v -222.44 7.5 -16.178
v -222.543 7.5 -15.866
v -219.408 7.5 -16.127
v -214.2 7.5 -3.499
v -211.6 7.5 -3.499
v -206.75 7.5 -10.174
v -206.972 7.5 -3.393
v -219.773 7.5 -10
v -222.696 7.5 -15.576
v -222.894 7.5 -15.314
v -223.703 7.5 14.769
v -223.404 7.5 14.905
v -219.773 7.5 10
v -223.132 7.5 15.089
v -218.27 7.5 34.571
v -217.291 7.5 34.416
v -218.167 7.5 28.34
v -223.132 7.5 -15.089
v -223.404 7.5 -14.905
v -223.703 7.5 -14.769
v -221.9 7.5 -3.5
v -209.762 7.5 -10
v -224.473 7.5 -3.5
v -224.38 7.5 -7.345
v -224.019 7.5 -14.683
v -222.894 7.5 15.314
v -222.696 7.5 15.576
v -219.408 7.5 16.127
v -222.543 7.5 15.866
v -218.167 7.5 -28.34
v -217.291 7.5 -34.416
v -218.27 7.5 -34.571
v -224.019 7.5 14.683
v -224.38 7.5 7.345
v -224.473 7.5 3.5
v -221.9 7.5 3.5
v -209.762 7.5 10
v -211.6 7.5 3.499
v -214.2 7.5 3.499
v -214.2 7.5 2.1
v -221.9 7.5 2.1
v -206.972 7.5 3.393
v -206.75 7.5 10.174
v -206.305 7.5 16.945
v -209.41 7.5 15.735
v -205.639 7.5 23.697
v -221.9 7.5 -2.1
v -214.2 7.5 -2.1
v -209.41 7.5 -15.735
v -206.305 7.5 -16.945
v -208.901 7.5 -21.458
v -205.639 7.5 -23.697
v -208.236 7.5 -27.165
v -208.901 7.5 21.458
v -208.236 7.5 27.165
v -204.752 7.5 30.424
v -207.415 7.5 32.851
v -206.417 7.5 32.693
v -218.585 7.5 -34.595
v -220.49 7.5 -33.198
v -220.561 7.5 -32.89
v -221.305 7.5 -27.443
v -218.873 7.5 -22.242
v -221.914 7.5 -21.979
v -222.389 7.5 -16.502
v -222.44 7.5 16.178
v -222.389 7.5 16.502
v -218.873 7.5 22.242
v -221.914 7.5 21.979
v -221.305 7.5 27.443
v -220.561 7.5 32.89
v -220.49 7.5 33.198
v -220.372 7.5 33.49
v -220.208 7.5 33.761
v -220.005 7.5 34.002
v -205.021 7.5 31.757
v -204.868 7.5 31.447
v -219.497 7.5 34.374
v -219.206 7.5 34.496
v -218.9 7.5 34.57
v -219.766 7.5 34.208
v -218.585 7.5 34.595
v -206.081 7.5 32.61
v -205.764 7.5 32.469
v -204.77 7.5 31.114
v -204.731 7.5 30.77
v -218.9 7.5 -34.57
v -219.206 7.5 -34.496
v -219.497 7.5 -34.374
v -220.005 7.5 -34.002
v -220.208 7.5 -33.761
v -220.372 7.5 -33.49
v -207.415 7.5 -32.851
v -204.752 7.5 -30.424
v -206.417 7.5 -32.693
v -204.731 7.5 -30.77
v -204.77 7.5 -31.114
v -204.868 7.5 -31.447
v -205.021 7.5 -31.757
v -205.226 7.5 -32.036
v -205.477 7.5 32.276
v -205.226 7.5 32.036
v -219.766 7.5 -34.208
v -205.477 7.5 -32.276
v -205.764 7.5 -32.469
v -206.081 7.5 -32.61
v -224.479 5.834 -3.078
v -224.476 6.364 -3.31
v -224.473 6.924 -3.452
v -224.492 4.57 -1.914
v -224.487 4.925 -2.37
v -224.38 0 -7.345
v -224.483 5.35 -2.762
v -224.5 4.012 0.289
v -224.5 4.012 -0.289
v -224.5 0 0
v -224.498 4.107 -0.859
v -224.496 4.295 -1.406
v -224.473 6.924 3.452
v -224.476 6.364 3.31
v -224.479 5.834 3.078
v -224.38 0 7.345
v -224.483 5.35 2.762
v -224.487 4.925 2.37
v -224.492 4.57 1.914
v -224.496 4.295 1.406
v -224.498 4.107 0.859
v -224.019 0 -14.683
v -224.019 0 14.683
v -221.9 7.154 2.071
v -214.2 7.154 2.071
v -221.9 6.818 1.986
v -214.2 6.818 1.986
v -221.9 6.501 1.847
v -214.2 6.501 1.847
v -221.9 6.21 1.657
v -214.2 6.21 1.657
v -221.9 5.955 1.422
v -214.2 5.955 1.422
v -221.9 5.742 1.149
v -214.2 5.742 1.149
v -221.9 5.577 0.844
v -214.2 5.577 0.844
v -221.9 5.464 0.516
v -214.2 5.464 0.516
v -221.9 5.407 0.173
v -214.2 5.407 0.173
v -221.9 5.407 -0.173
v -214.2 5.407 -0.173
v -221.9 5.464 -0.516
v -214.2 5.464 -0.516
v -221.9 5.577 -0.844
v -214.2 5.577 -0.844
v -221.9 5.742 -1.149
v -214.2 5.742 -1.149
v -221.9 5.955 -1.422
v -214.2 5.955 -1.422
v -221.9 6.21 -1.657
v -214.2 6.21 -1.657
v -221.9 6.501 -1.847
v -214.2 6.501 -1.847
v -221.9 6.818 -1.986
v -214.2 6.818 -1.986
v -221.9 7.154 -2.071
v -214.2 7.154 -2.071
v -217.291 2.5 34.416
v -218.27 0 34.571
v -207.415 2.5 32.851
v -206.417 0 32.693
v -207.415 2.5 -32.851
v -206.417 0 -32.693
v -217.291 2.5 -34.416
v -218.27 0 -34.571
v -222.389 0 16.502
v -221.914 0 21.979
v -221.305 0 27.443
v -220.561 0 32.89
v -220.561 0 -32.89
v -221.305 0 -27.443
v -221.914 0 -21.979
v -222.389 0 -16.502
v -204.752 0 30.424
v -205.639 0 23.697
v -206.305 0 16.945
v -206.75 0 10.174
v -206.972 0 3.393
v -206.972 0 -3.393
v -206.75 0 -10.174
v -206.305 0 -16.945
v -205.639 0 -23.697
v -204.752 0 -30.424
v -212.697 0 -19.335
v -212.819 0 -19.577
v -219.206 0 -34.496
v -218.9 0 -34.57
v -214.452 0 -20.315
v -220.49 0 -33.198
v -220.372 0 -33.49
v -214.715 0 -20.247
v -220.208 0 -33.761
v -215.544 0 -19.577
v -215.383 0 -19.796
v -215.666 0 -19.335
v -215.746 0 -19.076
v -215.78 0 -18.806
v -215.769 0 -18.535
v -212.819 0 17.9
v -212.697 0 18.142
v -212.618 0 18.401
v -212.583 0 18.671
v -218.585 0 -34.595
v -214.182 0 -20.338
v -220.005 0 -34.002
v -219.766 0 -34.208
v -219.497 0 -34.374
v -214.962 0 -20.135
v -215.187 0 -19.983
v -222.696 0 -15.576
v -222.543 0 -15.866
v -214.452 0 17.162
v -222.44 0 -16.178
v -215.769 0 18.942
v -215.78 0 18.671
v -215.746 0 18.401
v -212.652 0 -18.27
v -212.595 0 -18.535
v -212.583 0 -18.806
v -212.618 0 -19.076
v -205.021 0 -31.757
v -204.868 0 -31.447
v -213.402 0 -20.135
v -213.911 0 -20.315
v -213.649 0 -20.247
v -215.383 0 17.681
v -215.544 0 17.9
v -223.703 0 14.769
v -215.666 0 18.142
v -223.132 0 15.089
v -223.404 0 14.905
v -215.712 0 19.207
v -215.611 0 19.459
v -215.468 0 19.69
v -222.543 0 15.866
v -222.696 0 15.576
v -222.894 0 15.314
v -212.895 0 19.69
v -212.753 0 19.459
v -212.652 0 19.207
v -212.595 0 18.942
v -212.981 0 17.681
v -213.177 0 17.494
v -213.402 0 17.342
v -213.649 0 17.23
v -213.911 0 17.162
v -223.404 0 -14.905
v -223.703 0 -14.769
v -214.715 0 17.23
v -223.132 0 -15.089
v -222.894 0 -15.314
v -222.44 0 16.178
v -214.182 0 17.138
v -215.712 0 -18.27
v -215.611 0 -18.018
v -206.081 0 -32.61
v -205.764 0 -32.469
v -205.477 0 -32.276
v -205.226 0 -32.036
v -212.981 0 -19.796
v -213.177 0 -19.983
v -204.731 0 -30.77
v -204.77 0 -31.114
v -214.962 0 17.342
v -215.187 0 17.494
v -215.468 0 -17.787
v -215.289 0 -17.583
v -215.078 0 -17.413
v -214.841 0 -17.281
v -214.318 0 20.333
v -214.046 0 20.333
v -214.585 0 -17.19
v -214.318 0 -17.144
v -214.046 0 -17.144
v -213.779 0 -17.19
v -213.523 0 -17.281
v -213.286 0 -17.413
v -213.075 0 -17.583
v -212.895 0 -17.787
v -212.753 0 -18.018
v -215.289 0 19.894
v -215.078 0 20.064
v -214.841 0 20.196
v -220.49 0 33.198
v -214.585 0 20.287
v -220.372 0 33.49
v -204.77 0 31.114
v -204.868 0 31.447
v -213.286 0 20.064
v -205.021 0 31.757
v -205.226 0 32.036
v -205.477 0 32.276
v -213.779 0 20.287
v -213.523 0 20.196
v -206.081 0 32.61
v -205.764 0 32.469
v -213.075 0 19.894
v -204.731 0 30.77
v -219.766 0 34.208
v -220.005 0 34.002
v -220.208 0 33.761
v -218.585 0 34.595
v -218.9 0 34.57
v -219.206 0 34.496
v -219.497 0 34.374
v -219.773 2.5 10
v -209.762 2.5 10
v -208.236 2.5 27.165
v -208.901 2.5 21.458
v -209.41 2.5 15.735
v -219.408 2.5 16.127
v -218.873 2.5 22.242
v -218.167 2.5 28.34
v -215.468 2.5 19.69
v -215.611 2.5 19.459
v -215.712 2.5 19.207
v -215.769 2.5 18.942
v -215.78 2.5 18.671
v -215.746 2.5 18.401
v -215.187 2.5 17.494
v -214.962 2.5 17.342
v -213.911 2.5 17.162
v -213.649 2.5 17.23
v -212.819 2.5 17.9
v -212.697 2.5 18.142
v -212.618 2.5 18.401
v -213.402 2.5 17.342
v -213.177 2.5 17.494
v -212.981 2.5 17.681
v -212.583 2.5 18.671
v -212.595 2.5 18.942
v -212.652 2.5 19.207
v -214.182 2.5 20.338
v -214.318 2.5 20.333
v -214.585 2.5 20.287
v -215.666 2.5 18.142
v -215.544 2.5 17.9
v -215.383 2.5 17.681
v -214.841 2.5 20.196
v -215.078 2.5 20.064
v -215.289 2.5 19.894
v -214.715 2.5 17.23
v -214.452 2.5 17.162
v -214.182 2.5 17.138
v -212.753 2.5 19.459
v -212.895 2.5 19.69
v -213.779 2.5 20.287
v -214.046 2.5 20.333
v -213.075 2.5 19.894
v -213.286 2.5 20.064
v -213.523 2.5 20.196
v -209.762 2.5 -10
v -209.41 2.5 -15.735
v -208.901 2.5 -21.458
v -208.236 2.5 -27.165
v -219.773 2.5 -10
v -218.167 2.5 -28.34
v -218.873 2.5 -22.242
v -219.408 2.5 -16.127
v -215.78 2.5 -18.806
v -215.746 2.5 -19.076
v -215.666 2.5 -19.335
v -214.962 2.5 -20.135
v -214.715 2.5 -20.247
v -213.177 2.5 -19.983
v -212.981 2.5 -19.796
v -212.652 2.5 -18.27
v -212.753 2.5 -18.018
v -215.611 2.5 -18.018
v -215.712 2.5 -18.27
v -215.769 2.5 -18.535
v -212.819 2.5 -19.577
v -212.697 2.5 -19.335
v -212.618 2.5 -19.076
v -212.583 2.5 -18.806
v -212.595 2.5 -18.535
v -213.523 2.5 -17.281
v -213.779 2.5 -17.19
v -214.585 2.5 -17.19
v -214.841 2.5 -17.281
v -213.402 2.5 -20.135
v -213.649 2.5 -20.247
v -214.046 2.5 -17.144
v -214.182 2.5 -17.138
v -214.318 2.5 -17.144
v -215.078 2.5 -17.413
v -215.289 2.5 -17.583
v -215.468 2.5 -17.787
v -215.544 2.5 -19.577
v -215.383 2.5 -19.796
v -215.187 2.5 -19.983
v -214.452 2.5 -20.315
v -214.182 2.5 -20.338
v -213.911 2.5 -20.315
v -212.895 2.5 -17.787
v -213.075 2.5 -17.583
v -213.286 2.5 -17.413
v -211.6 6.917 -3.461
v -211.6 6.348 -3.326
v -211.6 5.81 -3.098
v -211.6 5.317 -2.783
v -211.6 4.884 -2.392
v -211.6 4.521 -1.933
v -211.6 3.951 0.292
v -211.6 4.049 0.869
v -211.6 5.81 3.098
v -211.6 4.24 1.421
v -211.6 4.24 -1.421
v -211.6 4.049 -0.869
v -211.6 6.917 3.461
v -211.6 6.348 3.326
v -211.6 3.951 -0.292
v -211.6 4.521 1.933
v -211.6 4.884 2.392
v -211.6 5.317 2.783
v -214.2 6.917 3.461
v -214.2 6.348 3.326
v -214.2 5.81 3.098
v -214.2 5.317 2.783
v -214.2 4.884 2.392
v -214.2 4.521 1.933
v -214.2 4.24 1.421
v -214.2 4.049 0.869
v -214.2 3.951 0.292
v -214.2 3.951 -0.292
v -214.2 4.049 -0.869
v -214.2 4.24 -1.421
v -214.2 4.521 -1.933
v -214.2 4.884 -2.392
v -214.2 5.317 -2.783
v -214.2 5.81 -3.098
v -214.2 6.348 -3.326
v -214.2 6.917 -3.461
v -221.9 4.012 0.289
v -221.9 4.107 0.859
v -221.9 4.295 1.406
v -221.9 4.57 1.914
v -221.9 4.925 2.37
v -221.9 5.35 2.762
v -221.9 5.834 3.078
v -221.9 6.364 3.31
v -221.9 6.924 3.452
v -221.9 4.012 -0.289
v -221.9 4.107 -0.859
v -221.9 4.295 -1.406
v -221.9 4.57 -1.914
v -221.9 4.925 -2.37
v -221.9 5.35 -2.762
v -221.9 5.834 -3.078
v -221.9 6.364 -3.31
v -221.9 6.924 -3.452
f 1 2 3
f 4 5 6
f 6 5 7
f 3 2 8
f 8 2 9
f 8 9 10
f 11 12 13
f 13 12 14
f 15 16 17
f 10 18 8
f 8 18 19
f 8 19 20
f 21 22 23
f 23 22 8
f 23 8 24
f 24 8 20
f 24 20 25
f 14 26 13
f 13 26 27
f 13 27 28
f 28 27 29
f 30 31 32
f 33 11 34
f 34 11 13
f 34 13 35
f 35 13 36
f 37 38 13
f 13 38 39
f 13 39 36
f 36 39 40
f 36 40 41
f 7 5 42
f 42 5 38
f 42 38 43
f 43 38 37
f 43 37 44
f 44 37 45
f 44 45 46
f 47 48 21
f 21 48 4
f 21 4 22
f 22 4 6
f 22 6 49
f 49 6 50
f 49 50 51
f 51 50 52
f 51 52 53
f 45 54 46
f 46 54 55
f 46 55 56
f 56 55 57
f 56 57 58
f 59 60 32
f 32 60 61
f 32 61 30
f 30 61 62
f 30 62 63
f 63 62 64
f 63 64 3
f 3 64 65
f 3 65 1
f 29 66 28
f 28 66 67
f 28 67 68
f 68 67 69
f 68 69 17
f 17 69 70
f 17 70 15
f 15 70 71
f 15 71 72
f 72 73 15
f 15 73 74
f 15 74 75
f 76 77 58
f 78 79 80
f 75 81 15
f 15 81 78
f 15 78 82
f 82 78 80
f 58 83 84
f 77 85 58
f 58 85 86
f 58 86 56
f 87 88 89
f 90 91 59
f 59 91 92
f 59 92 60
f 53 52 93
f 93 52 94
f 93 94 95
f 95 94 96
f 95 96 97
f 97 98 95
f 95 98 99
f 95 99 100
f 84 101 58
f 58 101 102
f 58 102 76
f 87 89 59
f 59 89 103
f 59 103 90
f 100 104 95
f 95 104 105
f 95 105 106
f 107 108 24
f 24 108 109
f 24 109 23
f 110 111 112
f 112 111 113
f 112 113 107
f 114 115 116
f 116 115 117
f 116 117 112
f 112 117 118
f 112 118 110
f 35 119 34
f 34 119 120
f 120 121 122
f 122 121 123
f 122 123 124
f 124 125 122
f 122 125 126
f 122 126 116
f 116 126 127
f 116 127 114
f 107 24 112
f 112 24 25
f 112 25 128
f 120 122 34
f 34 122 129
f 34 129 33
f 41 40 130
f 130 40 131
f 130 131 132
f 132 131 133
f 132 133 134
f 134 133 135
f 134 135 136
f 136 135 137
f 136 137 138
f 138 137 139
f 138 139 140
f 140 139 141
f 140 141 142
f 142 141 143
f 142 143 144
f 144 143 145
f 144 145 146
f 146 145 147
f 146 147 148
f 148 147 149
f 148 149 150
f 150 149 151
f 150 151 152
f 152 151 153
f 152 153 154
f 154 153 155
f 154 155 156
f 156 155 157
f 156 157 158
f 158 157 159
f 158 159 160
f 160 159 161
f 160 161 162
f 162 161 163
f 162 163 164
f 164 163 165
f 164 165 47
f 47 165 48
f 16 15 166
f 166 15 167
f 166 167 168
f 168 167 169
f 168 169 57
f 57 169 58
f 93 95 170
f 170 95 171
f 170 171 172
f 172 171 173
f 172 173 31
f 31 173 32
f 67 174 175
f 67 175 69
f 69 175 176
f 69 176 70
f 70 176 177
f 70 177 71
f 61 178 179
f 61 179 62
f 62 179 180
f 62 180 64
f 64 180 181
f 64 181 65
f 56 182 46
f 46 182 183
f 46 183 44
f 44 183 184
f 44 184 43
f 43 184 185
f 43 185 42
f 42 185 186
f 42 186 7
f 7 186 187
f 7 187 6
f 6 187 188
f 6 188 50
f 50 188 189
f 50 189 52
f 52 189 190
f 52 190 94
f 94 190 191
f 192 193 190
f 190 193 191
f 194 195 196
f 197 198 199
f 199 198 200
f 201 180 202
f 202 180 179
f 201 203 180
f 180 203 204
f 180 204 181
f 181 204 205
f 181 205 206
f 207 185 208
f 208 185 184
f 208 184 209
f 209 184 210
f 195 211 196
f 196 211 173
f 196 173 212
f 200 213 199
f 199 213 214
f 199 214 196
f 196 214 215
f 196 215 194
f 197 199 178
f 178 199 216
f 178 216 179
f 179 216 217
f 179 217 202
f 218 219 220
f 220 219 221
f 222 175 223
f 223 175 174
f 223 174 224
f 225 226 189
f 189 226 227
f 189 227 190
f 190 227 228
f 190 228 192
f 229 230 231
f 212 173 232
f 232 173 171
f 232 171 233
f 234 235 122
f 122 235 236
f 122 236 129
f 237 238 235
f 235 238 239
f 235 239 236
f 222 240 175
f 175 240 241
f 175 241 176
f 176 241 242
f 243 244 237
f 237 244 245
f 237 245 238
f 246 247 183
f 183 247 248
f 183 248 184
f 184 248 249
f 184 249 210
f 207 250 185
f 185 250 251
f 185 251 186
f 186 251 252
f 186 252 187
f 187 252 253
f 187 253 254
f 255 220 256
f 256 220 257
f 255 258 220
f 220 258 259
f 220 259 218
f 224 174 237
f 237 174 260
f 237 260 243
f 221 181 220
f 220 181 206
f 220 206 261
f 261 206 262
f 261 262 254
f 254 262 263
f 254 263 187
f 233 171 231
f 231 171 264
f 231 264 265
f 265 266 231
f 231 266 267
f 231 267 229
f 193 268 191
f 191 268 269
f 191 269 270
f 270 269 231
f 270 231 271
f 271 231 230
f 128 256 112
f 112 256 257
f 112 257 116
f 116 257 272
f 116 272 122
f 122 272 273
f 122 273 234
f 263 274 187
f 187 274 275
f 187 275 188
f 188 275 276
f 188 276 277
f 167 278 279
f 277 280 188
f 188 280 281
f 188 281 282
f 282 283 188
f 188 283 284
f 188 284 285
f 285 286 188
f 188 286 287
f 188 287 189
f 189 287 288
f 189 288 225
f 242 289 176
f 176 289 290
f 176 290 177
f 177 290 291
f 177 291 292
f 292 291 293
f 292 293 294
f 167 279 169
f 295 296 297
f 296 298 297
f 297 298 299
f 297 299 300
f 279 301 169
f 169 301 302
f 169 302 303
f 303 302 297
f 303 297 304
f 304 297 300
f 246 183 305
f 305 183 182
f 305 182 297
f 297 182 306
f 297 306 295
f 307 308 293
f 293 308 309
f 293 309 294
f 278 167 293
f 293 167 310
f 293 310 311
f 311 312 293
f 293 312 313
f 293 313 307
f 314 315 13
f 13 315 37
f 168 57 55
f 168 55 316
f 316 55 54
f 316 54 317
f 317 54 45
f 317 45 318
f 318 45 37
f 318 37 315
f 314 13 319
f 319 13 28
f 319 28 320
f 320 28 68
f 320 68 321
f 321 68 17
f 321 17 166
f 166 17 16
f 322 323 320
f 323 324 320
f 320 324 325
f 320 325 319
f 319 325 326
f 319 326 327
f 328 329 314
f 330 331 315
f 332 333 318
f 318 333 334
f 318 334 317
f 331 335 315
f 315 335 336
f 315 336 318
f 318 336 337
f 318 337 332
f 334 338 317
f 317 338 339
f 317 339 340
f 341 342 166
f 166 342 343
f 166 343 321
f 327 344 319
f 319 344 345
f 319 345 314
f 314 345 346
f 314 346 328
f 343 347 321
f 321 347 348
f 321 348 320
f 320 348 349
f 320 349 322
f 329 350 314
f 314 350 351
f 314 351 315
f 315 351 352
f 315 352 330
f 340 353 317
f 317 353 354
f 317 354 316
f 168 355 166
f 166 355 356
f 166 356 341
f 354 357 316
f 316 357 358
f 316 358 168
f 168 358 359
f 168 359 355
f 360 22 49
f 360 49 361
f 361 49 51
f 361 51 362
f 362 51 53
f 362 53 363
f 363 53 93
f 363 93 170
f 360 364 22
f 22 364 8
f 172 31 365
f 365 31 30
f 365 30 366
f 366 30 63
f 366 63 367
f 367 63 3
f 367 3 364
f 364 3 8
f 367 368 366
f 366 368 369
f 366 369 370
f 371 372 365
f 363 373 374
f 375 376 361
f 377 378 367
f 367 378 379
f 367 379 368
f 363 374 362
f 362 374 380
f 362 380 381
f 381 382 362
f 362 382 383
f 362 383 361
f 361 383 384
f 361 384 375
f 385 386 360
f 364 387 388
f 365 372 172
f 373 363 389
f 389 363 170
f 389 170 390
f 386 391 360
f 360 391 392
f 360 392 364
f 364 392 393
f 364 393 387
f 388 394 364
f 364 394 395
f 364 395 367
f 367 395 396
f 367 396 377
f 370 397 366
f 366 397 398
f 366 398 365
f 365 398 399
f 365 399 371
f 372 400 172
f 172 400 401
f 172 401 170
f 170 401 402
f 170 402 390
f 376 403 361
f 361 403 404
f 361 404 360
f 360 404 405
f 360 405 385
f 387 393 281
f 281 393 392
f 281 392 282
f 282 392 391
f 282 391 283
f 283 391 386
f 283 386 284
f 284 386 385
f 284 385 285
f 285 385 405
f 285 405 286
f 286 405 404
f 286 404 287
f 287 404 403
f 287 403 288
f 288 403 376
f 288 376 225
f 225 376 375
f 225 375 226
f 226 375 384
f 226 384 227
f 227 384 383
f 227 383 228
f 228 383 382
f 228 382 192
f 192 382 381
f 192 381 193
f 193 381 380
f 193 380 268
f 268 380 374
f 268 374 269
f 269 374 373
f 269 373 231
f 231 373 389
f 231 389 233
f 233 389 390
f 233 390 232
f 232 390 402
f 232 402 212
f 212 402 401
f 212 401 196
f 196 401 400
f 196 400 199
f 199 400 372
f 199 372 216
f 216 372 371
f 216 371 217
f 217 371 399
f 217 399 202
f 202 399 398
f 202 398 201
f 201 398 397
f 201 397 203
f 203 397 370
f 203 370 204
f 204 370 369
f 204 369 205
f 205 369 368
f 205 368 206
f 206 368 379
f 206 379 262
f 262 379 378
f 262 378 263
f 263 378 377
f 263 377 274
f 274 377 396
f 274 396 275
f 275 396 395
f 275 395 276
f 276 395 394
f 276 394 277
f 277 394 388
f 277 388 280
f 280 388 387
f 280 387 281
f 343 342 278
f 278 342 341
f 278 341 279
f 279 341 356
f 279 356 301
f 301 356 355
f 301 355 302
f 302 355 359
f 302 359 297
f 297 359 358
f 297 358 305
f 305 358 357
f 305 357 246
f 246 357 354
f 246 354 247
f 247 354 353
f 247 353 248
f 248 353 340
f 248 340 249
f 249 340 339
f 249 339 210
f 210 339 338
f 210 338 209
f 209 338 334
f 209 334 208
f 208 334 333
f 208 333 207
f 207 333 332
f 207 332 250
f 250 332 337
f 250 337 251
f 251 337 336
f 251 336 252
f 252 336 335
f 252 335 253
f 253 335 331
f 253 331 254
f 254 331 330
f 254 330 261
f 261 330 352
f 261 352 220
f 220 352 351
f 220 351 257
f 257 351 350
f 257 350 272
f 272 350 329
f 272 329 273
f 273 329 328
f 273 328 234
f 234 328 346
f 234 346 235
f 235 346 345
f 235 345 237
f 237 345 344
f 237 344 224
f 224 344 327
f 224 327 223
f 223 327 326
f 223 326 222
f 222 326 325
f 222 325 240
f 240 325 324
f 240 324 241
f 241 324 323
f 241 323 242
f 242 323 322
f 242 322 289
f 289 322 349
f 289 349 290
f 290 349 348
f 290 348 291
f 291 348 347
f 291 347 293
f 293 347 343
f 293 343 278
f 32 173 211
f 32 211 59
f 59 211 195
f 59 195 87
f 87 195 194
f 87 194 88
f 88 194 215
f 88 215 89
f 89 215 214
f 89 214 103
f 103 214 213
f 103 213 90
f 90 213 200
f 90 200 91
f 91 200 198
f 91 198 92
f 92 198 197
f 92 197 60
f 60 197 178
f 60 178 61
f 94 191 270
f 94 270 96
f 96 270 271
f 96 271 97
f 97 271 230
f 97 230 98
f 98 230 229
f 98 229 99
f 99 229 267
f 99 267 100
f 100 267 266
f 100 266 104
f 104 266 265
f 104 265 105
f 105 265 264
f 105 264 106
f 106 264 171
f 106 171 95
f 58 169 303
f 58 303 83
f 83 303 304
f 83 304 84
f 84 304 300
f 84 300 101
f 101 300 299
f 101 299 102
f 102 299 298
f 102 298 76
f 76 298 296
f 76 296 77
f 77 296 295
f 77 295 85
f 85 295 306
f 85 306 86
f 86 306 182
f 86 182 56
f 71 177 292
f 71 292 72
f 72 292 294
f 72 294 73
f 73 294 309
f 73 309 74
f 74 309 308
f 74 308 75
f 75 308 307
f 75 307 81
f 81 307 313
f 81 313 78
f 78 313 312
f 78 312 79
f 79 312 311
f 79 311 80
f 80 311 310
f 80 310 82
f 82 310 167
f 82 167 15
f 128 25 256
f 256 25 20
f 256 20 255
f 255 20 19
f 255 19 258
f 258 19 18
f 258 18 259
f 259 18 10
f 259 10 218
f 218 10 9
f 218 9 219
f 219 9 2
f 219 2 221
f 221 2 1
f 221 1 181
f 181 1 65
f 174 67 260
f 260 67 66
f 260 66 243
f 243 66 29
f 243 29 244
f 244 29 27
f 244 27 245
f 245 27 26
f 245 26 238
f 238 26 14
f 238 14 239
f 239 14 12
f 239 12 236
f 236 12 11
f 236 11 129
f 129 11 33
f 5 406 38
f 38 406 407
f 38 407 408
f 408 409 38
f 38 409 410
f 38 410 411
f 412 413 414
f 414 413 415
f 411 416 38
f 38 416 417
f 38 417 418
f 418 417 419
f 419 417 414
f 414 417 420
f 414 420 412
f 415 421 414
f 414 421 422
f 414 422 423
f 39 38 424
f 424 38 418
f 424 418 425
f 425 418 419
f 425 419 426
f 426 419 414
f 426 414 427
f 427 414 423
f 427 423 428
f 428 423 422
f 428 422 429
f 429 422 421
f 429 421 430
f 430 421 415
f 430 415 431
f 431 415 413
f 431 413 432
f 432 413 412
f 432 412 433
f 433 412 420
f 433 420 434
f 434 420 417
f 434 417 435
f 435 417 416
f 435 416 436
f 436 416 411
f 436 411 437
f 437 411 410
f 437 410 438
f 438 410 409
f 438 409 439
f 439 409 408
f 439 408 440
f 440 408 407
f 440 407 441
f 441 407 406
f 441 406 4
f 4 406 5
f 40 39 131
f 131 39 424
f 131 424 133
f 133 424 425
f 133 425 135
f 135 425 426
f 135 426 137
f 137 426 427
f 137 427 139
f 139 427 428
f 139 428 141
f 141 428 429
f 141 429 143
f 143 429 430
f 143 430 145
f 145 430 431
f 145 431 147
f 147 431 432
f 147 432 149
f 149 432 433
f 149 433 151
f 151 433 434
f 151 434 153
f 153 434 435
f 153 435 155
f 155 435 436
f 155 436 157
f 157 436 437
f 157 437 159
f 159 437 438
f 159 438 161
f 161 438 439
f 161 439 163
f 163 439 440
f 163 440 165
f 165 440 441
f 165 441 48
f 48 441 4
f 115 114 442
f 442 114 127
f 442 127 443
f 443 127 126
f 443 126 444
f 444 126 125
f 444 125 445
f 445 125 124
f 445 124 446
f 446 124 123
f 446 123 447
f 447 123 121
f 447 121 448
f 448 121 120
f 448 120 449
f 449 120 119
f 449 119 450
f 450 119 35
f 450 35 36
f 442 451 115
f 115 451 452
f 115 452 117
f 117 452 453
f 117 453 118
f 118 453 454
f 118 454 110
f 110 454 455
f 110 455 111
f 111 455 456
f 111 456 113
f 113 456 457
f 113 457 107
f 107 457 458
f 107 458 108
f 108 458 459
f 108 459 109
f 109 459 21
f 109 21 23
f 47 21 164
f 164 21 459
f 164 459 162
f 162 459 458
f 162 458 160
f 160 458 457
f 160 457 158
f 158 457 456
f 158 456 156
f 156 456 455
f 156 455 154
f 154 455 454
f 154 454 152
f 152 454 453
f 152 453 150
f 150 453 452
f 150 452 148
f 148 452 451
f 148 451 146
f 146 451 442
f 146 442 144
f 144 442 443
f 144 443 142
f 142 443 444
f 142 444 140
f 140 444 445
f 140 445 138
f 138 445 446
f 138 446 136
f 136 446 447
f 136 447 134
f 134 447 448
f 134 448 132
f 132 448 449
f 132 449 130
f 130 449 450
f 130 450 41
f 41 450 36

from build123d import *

# Parameters (mm, degrees)
BOSS_EXTRUDE1_DEPTH            = 7.5
BOSS_EXTRUDE2_DEPTH            = 7.5
CUT_EXTRUDE1_DEPTH             = 5
F_3_2_3_2_DIAMETER_HOLE1_D     = 3.2
FILLET1_R                      = 2
FILLET2_R                      = 2
CUT_EXTRUDE2_REACH             = 39.378
CUT_EXTRUDE2_END_RADIUS        = 224.5
SKETCH22_R                     = 2.1
CUT_EXTRUDE2_DIRECTION_2_DEPTH = 0.9
SKETCH23_R                     = 3.5
CUT_EXTRUDE3_DEPTH             = 2.6
SKETCH24_W                     = 2.6
SKETCH24_H                     = 3.5


with BuildPart() as part:
    # Sketch1 → Boss-Extrude1 (new body)
    with BuildSketch(Plane(origin=(0, 0, 0), x_dir=(1, 0, 0), z_dir=(0, 1, 0))):
        with BuildLine():
            ThreePointArc((-207.414551525, 32.851237658), (-210, 0), (-207.414551525, -32.851237658))
            Line((-207.414551525, -32.851237658), (-217.291434931, -34.415582309))
            ThreePointArc((-217.291434931, -34.415582309), (-220, 0), (-217.291434931, 34.415582309))
            Line((-217.291434931, 34.415582309), (-207.414551525, 32.851237658))
        make_face()
        with BuildLine():
            ThreePointArc((-217.291434931, -34.415582309), (-220, 0), (-217.291434931, 34.415582309))
            Line((-217.291434931, 34.415582309), (-220.254499953, 34.884885704))
            ThreePointArc((-220.254499953, 34.884885704), (-223, 0), (-220.254499953, -34.884885704))
            Line((-220.254499953, -34.884885704), (-217.291434931, -34.415582309))
        make_face()
        with BuildLine():
            Line((-204.451486503, 32.381934263), (-207.414551525, 32.851237658))
            ThreePointArc((-207.414551525, 32.851237658), (-210, 0), (-207.414551525, -32.851237658))
            Line((-207.414551525, -32.851237658), (-204.451486503, -32.381934263))
            ThreePointArc((-204.451486503, -32.381934263), (-207, 0), (-204.451486503, 32.381934263))
        make_face()
    extrude(amount=BOSS_EXTRUDE1_DEPTH)

    # Sketch19 → Boss-Extrude2 (add)
    with BuildSketch(Plane(origin=(0, 0, 0), x_dir=(1, 0, 0), z_dir=(0, 1, 0))):
        with BuildLine():
            Line((-224.019328267, 14.683002512), (-222.522539882, 14.584897818))
            ThreePointArc((-222.522539882, 14.584897818), (-223, 0), (-222.522539882, -14.584897818))
            Line((-222.522539882, -14.584897818), (-224.019328267, -14.683002512))
            ThreePointArc((-224.019328267, -14.683002512), (-224.5, 0), (-224.019328267, 14.683002512))
        make_face()
    extrude(amount=BOSS_EXTRUDE2_DEPTH)

    # Sketch15 → Cut-Extrude1 (cut)
    with BuildSketch(Plane(origin=(0, 7.5, 0), x_dir=(1, 0, 0), z_dir=(0, 1, 0))):
        with BuildLine():
            Line((-219.772609758, 10), (-209.761769634, 10))
            ThreePointArc((-209.761769634, 10), (-208.900850883, 21.457737542), (-207.414551525, 32.851237658))
            Line((-207.414551525, 32.851237658), (-217.291434931, 34.415582309))
            ThreePointArc((-217.291434931, 34.415582309), (-218.872736893, 22.242415451), (-219.772609758, 10))
        make_face()
        with BuildLine():
            ThreePointArc((-207.414551525, -32.851237658), (-208.900850883, -21.457737542), (-209.761769634, -10))
            Line((-209.761769634, -10), (-219.772609758, -10))
            ThreePointArc((-219.772609758, -10), (-218.872736893, -22.242415451), (-217.291434931, -34.415582309))
            Line((-217.291434931, -34.415582309), (-207.414551525, -32.851237658))
        make_face()
    extrude(amount=-CUT_EXTRUDE1_DEPTH, mode=Mode.SUBTRACT)

    # Ø3.2 (3.2) Diameter Hole1 (through all)
    with Locations(Plane(origin=(0, 0, 0), x_dir=(-1, 0, 0), z_dir=(0, -1, 0))):
        with Locations((214.18186009, -18.738484691), (214.18186009, 18.738484691)):
            Hole(F_3_2_3_2_DIAMETER_HOLE1_D / 2)

    # Fillet1
    fillet1_edges = [part.edges().sort_by_distance(p)[0] for p in [
        (-220.254499953, 3.75, 34.884885704),
        (-220.254499953, 3.75, -34.884885704),
        (-204.451486503, 3.75, -32.381934263),
        (-204.451486503, 3.75, 32.381934263),
    ]]
    fillet(fillet1_edges, radius=FILLET1_R)

    # Fillet2
    # the kernel refuses this fillet: 2 mm, written as the material it adds along each edge
    with BuildSketch(Plane(origin=(-222.522539882, 0, -14.584897818), x_dir=(0.06970140258603677, 0, -0.9975678996827931), z_dir=(0, 1, 0))) as fillet2_piece_1:
        with BuildLine():
            CenterArc((1.930030715, 1.99998144), FILLET2_R, 194.477374901, 75.275788142)
            Line((-0.006462156, 1.49998608), (-0.045192014, 1.489986173))
            ThreePointArc((-0.045192014, 1.489986173), (-0.043230707, 0.749820716), (-0.039999629, -0.000172324))
            Line((-0.039999629, -0.000172324), (0.000172324, -0.039999629))
            ThreePointArc((0.000172324, -0.039999629), (0.960707253, -0.037930577), (1.921242182, -0.039999629))
            Line((1.921242182, -0.039999629), (1.921414506, 0))
        make_face()
    extrude(amount=7.5)
    with BuildSketch(Plane(origin=(-222.522539882, 0, 14.584897818), x_dir=(-0.9978589232386029, 0, 0.06540312923015226), z_dir=(0, 1, 0))) as fillet2_piece_2:
        with BuildLine():
            CenterArc((1.991648107, 1.938628933), FILLET2_R, 180.493673912, 75.275788142)
            Line((-0.008277654, 1.921396676), (-0.048276169, 1.92105203))
            ThreePointArc((-0.048276169, 1.92105203), (-0.042069052, 0.960534929), (-0.04, 0))
            Line((-0.04, 0), (0, -0.04))
            ThreePointArc((0, -0.04), (0.75, -0.04), (1.490167038, -0.038772579))
            Line((1.490167038, -0.038772579), (1.5, 0))
        make_face()
    extrude(amount=7.5)

    # Cut-Extrude2: up to this cylinder (the profile starts inside it)
    cut_extrude2_end = Plane(origin=(0, 7.5, 0), z_dir=(0, -1, 0)) * Cylinder(CUT_EXTRUDE2_END_RADIUS, 528.756, mode=Mode.PRIVATE)
    # Sketch22 → Cut-Extrude2 (cut, up to the surface)
    with BuildSketch(Plane(origin=(-212.5, 0, 0), x_dir=(0, 0, -1), z_dir=(1, 0, 0)), mode=Mode.PRIVATE) as cut_extrude2_sk1:
        with Locations((0, 7.5)):
            Circle(SKETCH22_R)
    cut_extrude2_tool1 = extrude(cut_extrude2_sk1.sketch, amount=-CUT_EXTRUDE2_REACH, mode=Mode.PRIVATE) & cut_extrude2_end
    add(cut_extrude2_tool1.solids().sort_by_distance((-212.5, 7.5, 0))[0], mode=Mode.SUBTRACT)

    # Sketch22 → Cut-Extrude2 direction 2 (cut)
    with BuildSketch(Plane(origin=(-212.5, 0, 0), x_dir=(0, 0, -1), z_dir=(1, 0, 0))):
        with Locations((0, 7.5)):
            Circle(SKETCH22_R)
    extrude(amount=CUT_EXTRUDE2_DIRECTION_2_DEPTH, mode=Mode.SUBTRACT)

    # Sketch23 → Cut-Extrude3 (cut)
    with BuildSketch(Plane.ZY.offset(211.6)):
        with Locations((0, 7.439199918)):
            Circle(SKETCH23_R)
    extrude(amount=CUT_EXTRUDE3_DEPTH, mode=Mode.SUBTRACT)

    # Sketch24 → Cut-Revolve1 (revolve, cut)
    with BuildSketch(Plane(origin=(0, 7.5, 0), x_dir=(1, 0, 0), z_dir=(0, 1, 0))):
        with Locations((-223.2, 1.75)):
            Rectangle(SKETCH24_W, SKETCH24_H)
    revolve(axis=Axis((-224.5, 7.5, 0), (1, 0, 0)), mode=Mode.SUBTRACT)


solid = part.part
